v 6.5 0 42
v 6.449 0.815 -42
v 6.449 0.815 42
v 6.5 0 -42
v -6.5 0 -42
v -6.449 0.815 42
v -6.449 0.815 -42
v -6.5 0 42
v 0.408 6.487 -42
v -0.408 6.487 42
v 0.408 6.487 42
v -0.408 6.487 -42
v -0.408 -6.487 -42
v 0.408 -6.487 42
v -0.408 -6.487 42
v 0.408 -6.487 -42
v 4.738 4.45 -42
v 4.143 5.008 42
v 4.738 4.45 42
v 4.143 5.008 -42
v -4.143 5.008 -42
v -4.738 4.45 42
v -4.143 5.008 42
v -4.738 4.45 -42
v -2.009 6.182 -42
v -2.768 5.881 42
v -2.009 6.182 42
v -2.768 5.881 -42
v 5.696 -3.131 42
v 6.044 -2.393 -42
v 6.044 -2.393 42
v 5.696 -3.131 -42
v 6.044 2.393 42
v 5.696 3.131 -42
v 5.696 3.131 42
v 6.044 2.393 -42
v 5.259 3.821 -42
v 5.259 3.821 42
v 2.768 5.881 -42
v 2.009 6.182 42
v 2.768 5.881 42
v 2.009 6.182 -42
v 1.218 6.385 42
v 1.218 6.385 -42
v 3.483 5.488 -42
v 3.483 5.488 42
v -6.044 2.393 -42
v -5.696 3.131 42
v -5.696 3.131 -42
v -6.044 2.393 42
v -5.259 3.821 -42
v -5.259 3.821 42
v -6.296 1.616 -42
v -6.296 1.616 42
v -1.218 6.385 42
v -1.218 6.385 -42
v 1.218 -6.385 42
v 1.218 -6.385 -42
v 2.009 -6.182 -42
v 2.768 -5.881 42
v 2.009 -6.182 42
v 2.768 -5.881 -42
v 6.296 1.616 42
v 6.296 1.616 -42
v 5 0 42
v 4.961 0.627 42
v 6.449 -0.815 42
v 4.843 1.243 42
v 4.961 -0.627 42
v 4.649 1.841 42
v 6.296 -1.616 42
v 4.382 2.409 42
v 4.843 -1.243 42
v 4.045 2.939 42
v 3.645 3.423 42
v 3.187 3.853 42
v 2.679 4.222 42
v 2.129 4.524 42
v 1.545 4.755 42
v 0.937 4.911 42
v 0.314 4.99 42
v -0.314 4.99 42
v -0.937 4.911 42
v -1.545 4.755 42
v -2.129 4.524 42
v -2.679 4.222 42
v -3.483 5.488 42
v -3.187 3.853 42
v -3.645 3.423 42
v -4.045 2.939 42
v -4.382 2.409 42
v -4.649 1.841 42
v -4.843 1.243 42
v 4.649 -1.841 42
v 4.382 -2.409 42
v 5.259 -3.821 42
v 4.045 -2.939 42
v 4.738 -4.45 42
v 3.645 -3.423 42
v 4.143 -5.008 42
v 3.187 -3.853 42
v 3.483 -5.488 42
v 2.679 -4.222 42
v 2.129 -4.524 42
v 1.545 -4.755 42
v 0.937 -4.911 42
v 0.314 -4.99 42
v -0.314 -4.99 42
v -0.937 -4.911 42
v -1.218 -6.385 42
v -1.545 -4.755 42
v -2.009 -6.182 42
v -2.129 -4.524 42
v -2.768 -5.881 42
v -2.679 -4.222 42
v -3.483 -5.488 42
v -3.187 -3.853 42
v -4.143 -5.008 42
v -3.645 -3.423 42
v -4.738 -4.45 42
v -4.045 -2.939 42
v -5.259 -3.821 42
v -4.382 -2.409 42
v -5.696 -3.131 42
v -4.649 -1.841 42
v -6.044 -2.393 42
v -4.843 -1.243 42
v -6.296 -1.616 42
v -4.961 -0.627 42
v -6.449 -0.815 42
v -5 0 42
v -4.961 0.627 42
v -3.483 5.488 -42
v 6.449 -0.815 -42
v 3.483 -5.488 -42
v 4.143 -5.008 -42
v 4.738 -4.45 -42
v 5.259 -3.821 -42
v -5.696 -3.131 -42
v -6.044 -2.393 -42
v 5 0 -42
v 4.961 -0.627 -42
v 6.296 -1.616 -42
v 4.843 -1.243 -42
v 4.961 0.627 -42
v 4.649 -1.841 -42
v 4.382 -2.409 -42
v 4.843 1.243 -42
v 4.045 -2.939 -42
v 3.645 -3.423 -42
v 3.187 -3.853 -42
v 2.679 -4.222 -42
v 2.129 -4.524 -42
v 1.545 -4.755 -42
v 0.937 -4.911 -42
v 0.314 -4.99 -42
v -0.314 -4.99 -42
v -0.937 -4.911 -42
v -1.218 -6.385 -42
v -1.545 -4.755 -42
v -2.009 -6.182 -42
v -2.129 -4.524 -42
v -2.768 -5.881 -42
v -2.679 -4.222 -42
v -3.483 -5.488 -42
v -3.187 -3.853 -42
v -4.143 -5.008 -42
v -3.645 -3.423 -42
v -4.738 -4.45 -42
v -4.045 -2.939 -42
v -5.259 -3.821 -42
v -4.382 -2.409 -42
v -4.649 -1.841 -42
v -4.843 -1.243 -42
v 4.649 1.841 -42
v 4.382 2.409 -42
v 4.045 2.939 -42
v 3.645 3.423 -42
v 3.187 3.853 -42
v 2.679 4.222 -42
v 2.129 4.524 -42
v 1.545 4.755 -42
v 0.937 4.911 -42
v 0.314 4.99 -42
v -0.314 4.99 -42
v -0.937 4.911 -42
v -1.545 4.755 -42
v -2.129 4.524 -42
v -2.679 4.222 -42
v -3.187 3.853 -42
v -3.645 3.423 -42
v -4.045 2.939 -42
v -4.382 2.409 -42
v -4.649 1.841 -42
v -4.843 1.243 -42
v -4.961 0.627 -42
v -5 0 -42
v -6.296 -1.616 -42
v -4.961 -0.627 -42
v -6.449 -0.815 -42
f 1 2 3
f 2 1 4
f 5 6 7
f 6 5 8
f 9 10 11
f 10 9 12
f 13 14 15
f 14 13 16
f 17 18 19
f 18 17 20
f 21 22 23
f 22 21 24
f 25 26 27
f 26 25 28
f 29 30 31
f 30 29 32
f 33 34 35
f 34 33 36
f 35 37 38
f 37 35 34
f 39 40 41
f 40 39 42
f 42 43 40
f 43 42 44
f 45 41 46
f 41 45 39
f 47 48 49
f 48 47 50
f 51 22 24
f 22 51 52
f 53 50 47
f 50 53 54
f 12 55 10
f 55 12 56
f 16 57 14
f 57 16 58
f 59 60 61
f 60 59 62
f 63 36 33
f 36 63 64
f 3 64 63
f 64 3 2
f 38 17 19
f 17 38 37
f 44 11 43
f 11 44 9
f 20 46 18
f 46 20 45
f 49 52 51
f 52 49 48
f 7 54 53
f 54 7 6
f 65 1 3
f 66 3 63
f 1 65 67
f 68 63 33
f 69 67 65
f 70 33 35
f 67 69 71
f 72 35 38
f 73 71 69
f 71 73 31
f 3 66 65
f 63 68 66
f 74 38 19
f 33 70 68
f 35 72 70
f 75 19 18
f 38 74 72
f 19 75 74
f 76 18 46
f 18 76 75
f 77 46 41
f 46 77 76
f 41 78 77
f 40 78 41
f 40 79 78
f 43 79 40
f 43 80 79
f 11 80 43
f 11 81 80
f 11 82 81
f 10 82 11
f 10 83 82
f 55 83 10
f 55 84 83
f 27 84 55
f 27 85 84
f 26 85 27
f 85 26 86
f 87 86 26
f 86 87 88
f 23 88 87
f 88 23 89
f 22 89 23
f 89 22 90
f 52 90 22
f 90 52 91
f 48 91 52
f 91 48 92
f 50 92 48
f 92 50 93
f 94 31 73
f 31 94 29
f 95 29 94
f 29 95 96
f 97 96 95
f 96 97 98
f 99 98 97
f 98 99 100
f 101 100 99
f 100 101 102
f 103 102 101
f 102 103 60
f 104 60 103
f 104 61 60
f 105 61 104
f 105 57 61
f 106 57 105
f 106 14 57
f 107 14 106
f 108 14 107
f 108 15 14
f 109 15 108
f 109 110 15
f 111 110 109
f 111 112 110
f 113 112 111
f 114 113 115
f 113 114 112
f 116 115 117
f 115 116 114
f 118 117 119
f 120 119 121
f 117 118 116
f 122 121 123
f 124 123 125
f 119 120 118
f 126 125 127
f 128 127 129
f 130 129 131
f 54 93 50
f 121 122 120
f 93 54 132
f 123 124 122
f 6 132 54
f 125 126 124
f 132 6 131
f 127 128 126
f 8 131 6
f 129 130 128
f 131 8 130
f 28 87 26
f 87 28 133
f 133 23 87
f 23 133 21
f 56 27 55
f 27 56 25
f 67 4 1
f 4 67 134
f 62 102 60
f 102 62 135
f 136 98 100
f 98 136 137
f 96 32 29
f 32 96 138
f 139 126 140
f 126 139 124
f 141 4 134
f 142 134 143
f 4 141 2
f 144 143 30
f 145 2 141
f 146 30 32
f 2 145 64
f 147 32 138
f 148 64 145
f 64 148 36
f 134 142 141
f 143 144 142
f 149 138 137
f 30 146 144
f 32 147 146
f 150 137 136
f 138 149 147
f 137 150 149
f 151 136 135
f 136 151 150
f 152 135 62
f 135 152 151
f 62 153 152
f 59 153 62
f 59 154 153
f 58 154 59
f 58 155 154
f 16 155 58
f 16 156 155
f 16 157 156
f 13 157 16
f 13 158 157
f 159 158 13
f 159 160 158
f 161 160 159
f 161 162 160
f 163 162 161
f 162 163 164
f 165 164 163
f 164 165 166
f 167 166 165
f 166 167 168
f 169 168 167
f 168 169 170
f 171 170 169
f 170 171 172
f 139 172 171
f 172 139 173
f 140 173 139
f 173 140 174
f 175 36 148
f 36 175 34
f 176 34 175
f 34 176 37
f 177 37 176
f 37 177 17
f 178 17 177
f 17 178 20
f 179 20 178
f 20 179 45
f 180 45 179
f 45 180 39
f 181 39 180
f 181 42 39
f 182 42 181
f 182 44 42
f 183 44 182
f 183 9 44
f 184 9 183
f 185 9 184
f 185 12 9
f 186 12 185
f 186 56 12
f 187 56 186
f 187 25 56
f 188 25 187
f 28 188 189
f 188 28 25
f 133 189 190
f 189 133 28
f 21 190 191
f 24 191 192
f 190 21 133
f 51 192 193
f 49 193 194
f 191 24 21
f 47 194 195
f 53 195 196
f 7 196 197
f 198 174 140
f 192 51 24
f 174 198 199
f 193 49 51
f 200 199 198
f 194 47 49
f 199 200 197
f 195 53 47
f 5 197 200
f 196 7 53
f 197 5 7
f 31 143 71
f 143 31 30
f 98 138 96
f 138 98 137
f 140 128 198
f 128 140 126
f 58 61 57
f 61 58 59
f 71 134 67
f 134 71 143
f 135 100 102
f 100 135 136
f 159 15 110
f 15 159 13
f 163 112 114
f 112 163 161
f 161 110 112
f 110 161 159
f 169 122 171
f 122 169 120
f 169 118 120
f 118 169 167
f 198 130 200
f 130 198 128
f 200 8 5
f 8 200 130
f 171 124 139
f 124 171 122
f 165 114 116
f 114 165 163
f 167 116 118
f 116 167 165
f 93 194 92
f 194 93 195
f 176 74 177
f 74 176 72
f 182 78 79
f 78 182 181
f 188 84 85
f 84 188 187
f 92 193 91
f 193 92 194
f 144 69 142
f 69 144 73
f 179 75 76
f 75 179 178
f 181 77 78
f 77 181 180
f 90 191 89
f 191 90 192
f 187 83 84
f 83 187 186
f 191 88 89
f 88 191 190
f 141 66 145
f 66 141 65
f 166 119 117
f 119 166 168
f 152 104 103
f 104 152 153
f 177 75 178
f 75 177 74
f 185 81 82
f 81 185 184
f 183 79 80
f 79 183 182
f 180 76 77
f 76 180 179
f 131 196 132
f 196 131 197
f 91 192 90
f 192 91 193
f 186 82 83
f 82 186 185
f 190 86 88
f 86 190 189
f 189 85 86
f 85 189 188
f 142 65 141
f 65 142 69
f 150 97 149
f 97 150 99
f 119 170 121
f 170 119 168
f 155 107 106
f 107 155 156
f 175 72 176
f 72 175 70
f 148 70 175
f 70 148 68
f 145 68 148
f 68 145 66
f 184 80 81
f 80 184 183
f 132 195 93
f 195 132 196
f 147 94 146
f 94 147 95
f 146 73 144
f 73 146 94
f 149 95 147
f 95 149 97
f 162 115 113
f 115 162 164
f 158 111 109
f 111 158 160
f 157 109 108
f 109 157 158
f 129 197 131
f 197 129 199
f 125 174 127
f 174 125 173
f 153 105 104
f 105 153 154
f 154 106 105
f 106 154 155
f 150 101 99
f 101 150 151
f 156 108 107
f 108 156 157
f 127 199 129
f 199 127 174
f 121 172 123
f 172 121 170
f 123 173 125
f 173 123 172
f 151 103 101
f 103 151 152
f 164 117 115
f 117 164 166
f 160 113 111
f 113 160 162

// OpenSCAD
$fn = 50;


difference() {
	union() {
		translate(v = [0, 0, -42.0000000000]) {
			cylinder(h = 84, r = 6.5000000000);
		}
	}
	union() {
		translate(v = [0, 0, -100.0000000000]) {
			cylinder(h = 200, r = 5.0000000000);
		}
	}
}
